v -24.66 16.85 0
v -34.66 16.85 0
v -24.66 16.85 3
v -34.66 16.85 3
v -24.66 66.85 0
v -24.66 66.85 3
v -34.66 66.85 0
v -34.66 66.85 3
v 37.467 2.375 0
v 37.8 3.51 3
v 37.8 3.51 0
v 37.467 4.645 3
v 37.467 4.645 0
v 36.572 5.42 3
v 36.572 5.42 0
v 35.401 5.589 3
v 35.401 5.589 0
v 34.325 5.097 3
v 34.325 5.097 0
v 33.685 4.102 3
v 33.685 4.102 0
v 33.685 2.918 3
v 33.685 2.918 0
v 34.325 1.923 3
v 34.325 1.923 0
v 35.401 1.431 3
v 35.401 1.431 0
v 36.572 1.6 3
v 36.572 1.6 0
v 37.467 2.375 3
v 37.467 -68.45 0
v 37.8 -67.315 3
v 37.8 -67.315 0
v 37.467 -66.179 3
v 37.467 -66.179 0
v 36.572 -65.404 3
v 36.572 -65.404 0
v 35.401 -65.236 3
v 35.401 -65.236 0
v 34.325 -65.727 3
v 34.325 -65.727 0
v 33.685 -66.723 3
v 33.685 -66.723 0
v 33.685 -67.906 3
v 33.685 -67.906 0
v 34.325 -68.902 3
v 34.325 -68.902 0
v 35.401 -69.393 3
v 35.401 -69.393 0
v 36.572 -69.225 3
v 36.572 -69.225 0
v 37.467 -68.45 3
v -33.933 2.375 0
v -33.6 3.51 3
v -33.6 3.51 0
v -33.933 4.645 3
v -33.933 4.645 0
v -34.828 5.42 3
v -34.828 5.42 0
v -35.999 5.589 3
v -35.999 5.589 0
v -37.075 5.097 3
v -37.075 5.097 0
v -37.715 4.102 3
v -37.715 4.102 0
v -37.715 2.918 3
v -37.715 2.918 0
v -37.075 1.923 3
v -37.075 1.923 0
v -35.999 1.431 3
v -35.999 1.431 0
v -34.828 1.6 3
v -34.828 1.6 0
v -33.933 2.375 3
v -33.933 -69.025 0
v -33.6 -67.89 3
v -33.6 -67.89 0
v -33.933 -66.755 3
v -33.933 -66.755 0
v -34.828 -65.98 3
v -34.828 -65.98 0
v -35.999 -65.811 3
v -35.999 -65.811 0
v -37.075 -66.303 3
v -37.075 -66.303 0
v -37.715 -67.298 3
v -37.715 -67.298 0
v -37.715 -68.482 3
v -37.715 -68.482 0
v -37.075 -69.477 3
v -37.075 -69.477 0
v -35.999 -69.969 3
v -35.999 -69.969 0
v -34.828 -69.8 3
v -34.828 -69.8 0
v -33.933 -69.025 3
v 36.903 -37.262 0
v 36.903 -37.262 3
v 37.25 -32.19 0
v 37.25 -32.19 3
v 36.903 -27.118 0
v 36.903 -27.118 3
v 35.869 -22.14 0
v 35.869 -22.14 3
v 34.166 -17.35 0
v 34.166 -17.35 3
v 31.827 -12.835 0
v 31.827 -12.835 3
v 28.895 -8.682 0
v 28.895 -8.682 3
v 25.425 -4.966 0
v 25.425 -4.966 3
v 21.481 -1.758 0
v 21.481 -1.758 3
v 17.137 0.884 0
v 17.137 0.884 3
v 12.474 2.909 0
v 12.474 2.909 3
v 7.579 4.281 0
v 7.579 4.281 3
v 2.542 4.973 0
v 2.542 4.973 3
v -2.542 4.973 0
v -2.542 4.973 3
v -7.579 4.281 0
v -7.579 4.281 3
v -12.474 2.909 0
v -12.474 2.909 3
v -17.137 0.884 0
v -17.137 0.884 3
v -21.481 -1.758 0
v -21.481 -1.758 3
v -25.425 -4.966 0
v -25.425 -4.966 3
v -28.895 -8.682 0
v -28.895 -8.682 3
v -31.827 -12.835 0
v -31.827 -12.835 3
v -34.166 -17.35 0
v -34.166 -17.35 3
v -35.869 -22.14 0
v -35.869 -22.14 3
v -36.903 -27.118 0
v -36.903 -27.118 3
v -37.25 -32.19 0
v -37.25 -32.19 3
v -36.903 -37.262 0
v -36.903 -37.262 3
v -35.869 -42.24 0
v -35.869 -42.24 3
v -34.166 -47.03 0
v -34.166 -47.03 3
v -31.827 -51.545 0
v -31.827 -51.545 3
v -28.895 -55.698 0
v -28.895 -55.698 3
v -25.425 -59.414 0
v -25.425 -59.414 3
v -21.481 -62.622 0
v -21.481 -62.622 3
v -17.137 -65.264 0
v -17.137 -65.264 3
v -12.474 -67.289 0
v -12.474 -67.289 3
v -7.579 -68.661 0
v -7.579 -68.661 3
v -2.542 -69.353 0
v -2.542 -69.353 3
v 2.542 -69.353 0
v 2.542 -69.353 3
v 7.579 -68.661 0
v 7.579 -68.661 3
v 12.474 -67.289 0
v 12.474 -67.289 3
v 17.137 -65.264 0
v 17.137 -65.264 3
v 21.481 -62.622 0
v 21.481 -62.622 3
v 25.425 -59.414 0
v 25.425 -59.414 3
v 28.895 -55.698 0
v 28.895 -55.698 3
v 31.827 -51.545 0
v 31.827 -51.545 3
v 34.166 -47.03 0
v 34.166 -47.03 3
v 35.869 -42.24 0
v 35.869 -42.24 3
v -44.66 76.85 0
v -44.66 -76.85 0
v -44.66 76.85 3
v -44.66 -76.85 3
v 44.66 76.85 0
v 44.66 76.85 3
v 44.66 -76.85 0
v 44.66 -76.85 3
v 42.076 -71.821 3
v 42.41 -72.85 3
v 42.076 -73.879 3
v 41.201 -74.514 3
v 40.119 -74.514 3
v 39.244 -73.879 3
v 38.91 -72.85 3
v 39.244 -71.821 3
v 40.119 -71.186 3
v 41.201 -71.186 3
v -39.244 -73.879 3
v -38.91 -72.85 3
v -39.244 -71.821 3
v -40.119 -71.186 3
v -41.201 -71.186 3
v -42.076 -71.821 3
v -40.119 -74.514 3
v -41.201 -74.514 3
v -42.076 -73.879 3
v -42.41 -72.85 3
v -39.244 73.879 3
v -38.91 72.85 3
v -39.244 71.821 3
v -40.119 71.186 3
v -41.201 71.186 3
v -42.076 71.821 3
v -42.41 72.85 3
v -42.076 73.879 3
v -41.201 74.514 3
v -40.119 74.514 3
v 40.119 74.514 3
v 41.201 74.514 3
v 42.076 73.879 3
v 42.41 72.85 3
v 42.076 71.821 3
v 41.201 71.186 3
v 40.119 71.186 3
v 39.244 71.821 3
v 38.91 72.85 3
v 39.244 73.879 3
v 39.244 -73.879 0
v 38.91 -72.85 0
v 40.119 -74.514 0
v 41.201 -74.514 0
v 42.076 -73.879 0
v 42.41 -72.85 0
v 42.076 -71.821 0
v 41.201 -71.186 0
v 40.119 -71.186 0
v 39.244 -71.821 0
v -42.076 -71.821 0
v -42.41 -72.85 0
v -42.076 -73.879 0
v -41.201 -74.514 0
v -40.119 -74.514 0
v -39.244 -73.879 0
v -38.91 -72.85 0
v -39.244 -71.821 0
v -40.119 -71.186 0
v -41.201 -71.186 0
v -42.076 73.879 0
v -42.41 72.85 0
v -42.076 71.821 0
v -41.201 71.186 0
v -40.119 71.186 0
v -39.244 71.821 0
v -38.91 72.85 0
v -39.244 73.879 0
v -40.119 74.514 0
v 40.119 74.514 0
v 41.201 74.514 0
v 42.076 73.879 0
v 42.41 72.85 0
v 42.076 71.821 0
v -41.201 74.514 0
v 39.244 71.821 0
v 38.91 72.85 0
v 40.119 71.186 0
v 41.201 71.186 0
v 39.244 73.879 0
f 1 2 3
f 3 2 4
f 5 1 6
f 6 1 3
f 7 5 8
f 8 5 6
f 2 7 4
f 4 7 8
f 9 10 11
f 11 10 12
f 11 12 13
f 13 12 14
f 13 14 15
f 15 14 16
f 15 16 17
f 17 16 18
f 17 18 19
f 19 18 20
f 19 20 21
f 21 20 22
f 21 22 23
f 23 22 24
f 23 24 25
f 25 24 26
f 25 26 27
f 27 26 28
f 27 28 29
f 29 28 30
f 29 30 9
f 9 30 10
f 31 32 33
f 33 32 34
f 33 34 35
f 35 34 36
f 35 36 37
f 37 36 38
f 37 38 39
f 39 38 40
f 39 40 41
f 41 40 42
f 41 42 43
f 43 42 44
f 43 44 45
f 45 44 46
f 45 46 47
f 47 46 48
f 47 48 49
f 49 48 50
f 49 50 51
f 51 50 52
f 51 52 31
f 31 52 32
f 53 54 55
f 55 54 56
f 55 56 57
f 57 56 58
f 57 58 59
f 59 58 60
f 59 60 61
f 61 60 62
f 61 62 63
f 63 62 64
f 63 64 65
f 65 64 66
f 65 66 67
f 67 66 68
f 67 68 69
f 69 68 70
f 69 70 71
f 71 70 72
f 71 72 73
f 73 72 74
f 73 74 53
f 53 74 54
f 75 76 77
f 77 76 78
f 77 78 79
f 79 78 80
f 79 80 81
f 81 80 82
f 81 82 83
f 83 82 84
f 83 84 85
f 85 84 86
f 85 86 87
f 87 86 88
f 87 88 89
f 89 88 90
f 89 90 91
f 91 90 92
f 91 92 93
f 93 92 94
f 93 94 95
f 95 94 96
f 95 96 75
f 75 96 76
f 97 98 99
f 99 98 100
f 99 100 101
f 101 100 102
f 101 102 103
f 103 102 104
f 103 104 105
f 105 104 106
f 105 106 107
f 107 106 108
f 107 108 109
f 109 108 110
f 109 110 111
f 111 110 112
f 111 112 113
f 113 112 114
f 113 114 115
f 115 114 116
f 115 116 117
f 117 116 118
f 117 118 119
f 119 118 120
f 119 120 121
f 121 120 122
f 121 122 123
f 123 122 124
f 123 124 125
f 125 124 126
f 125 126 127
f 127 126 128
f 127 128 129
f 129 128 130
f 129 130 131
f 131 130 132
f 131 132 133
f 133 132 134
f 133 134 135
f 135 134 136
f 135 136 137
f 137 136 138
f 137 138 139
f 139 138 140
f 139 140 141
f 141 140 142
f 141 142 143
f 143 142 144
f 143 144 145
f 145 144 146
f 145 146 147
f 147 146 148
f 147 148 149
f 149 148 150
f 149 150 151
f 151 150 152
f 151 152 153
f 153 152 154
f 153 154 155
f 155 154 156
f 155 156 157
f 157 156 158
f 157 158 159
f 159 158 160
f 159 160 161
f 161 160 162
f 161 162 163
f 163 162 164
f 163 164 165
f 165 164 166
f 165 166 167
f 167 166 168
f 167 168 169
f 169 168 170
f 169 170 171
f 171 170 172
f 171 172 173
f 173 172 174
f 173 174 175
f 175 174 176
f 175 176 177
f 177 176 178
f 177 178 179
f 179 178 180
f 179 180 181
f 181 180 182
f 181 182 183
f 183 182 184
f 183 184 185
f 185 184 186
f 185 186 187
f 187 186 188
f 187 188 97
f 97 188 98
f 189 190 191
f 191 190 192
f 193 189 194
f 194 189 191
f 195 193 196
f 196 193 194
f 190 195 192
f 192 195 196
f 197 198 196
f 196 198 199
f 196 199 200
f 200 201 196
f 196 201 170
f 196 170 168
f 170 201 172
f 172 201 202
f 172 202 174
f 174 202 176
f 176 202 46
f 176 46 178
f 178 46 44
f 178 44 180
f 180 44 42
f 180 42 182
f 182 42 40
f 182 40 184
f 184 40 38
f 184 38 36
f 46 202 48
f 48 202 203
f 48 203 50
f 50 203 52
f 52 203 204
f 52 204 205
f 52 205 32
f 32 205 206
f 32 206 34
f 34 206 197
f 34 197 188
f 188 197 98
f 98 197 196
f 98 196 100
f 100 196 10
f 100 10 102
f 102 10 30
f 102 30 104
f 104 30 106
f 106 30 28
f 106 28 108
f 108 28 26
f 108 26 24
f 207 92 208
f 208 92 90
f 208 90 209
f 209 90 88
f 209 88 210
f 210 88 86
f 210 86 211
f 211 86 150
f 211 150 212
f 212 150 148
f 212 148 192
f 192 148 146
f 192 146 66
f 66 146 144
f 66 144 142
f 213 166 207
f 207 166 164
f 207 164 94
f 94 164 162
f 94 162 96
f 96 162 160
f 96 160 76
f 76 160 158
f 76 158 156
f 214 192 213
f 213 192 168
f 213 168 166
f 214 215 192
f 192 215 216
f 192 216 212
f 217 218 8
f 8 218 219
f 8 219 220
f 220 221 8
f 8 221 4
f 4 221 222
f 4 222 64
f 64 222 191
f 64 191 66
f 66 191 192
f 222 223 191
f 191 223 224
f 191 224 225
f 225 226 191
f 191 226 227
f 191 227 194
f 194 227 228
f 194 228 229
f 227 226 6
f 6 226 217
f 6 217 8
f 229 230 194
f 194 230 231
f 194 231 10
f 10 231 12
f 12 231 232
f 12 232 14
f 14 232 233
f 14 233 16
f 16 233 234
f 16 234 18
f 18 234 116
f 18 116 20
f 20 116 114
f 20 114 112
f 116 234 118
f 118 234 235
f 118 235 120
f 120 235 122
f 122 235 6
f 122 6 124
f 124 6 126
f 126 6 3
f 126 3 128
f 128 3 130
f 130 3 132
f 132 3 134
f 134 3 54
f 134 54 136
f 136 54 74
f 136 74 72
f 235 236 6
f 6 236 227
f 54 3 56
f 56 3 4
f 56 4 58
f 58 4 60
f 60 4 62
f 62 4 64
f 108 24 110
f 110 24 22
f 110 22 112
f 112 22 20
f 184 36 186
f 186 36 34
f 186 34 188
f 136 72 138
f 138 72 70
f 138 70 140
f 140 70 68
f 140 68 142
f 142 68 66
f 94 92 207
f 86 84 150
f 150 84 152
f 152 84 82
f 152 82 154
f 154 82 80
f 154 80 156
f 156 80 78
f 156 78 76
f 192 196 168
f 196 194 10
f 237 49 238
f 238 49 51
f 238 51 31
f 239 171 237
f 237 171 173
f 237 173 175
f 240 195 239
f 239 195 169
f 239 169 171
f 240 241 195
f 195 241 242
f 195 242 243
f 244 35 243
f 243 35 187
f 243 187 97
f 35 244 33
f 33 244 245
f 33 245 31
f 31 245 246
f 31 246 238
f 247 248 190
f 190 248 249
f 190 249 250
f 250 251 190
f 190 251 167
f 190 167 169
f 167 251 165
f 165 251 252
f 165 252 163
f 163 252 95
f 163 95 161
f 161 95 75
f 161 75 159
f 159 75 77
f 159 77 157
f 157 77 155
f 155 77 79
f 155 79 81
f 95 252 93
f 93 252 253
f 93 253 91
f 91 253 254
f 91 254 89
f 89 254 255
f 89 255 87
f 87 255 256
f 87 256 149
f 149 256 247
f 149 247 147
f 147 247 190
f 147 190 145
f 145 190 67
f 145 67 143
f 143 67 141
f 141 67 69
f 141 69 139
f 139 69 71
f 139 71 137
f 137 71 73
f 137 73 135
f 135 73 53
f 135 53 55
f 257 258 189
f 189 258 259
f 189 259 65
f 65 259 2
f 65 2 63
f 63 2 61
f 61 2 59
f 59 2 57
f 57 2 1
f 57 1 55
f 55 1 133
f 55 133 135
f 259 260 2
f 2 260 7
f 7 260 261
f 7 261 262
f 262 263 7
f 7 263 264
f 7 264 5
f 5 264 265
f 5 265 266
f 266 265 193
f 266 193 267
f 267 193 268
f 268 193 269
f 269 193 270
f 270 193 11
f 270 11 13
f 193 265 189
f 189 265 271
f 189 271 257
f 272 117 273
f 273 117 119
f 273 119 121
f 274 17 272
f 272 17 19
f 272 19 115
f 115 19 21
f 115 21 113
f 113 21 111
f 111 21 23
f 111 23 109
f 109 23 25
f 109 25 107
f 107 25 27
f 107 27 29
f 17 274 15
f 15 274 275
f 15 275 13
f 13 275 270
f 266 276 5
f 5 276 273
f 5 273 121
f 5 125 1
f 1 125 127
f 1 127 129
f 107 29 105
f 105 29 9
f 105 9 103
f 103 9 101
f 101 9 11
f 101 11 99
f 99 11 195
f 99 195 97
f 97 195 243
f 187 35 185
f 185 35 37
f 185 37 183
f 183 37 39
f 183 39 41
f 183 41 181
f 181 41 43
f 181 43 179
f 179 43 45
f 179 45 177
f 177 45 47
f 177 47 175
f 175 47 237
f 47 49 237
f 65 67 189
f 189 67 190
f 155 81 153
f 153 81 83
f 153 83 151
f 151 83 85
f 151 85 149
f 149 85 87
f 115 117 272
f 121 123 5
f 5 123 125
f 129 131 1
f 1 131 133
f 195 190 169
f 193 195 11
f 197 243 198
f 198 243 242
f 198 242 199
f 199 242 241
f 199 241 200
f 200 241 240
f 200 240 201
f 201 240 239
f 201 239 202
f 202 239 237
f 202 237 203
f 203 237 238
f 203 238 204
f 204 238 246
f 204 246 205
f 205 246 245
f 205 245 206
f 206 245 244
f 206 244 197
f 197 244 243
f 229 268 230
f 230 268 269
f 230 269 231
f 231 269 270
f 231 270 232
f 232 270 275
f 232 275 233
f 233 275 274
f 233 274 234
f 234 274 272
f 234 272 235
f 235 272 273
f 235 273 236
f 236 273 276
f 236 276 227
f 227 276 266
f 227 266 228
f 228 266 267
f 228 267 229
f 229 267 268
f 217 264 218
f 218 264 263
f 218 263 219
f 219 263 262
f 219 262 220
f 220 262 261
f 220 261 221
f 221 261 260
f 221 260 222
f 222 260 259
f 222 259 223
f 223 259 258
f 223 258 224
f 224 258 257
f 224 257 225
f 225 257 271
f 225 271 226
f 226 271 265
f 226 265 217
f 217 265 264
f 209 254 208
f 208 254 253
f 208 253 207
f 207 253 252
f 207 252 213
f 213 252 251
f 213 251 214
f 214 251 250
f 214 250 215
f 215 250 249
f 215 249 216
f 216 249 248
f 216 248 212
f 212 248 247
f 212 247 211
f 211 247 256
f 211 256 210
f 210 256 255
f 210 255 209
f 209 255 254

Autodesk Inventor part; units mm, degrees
ref_plane "YZ Plane" through (0, 0, 0) normal (1, 0, 0) x (0, 1, 0)
ref_plane "XZ Plane" through (0, 0, 0) normal (0, 1, 0) x (-1, 0, 0)
ref_plane "XY Plane" through (0, 0, 0) normal (0, 0, 1) x (1, 0, 0)
sketch "Boceto1" plane through (0, 0, 0) normal (0, 0, 1) x (1, 0, 0)
  line L0 (-44.66, 76.85) -> (-44.66, -76.85) projected
  line L1 (-44.66, -76.85) -> (44.66, -76.85) projected
  line L2 (44.66, -76.85) -> (44.66, 76.85) projected
  line L3 (44.66, 76.85) -> (-44.66, 76.85) projected
  line L4 (41.66, -73.85) -> (-41.66, -73.85) projected
  line L5 (-41.66, -73.85) -> (-41.66, 73.85) projected
  line L6 (-41.66, 73.85) -> (41.66, 73.85) projected
  line L7 (41.66, 73.85) -> (41.66, -73.85) projected
  point P0 (0, 0)
extrude "Extrusión1" add sketch "Boceto1" along normal blind 3 contours L3 L2 L1 L0 | L4 L5 L6 L7
sketch "Boceto2" plane through (0, 0, 3) normal (0, 0, 1) x (1, 0, 0)
  line L0 (15.66, 13.175) -> (25.66, 13.175) projected
  line L1 (25.66, 13.175) -> (25.66, 9.175) projected
  line L2 (25.66, 9.175) -> (15.66, 9.175) projected
  line L3 (15.66, 9.175) -> (15.66, 13.175) projected
  line L4 (-21.66, 30.85) -> (-31.66, 30.85) projected
  line L5 (-31.66, 30.85) -> (-31.66, 34.85) projected
  line L6 (-31.66, 34.85) -> (-21.66, 34.85) projected
  line L7 (-21.66, 34.85) -> (-21.66, 30.85) projected
  line L8 (25.66, 30.85) -> (15.66, 30.85) projected
  line L9 (15.66, 30.85) -> (15.66, 34.85) projected
  line L10 (15.66, 34.85) -> (25.66, 34.85) projected
  line L11 (25.66, 34.85) -> (25.66, 30.85) projected
  line L12 (-31.66, 13.175) -> (-21.66, 13.175) projected
  line L13 (-21.66, 13.175) -> (-21.66, 9.175) projected
  line L14 (-21.66, 9.175) -> (-31.66, 9.175) projected
  line L15 (-31.66, 9.175) -> (-31.66, 13.175) projected
  circle A0 centre (32.34, 65.85) radius 4.5 projected
  circle A1 centre (-33.66, 39.85) radius 4.5 projected
  line L16 (38.16, -57.55) -> (38.16, -73.85) projected
  line L17 (38.16, -73.85) -> (41.66, -73.85) projected
  line L18 (41.66, -73.85) -> (41.66, 73.85) projected
  line L19 (41.66, 73.85) -> (-41.66, 73.85) projected
  line L20 (-41.66, 73.85) -> (-41.66, -73.85) projected
  line L21 (-41.66, -73.85) -> (23.76, -73.85) projected
  circle A2 centre (32.34, 39.85) radius 4.5 projected
  circle A3 centre (-33.66, 65.85) radius 4.5 projected
  line L22 (-44.66, 76.85) -> (-44.66, -76.85) projected
  line L23 (-44.66, 76.85) -> (-44.66, -76.85) projected
  line L24 (-44.66, -76.85) -> (44.66, -76.85) projected
  line L25 (44.66, -76.85) -> (44.66, 76.85) projected
  line L26 (44.66, 76.85) -> (-44.66, 76.85) projected
  line L27 (-44.66, 76.85) -> (-44.66, -76.85) projected
  line L28 (-41.66, -73.85) -> (41.66, -73.85)
  line L29 (41.66, -73.85) -> (41.66, 73.85)
  line L30 (41.66, 73.85) -> (-41.66, 73.85)
  line L31 (-41.66, 73.85) -> (-41.66, -73.85)
  line L32 (-41.66, -73.85) -> (41.66, -73.85)
  line L33 (41.66, -73.85) -> (41.66, 9.47)
  line L34 (41.66, 9.47) -> (-41.66, 9.47)
  line L35 (-41.66, 9.47) -> (-41.66, -73.85)
  line L36 (40, 7.81) -> (-40, 7.81)
  line L37 (-40, 7.81) -> (-40, -72.19)
  line L38 (-40, -72.19) -> (40, -72.19)
  line L39 (40, -72.19) -> (40, 7.81)
  line L40 (40, 7.81) -> (-40, -72.19) construction
  line L41 (-40, 7.81) -> (40, -72.19) construction
  line L42 (-37.8, -69.99) -> (-37.8, 5.61)
  line L43 (-37.8, 5.61) -> (37.8, 5.61)
  line L44 (37.8, 5.61) -> (37.8, -69.99)
  line L45 (37.8, -69.99) -> (-37.8, -69.99)
  circle A4 centre (-35.7, -67.89) radius 2.1
  circle A5 centre (0, -32.19) radius 37.25
  circle A6 centre (-35.7, 3.51) radius 2.1
  circle A7 centre (35.7, 3.51) radius 2.1
  circle A8 centre (35.7, -67.3145) radius 2.1
  point P0 (0, 0)
  dimension "d9" = 83.32
  dimension "d10" = 83.32
  dimension "d11" = 83.32
  dimension "d12" = 80
  dimension "d13" = 80
  dimension "d14" = 2.2
  dimension "d15" = 4.2
  dimension "d16" = 74.5
  dimension "d17" = 4.2
  dimension "d18" = 4.2
  dimension "d19" = 4.2
extrude "Extrusión3" cut sketch "Boceto2" against normal blind 3 contours A8 | A4 | A6 | A7 | A5
sketch "Boceto4" plane through (0, 0, 3) normal (0, 0, 1) x (1, 0, 0)
  circle A0 centre (35.7, 3.51) radius 2.1 projected
  circle A1 centre (35.7, -67.3145) radius 2.1 projected
  circle A2 centre (-35.7, 3.51) radius 2.1 projected
  circle A3 centre (-35.7, -67.89) radius 2.1 projected
  circle A4 centre (0, -32.19) radius 37.25 projected
  line L0 (-44.66, -76.85) -> (44.66, -76.85) projected
  line L1 (44.66, -76.85) -> (44.66, 76.85) projected
  line L2 (44.66, 76.85) -> (-44.66, 76.85) projected
  line L3 (-44.66, 76.85) -> (-44.66, -76.85) projected
  line L4 (-34.66, -66.85) -> (34.66, -66.85)
  line L5 (34.66, -66.85) -> (34.66, 66.85)
  line L6 (34.66, 66.85) -> (-34.66, 66.85)
  line L7 (-34.66, 66.85) -> (-34.66, -66.85)
  line L8 (-34.66, 66.85) -> (-24.66, 66.85)
  line L9 (-24.66, 66.85) -> (-24.66, 16.85)
  line L10 (-24.66, 16.85) -> (-34.66, 16.85)
  line L11 (-34.66, 16.85) -> (-34.66, 66.85)
  point P0 (0, 0)
  point P1 (-34.66, 16.85)
  dimension "d22" = 10
  dimension "d23" = 10
  dimension "d24" = 50
extrude "Extrusión4" cut sketch "Boceto4" against normal blind 10 contours L9 L10 L7 L6
sketch "Boceto5" plane through (0, 0, 0) normal (0, 0, -1) x (-1, 0, 0)
  circle A0 centre (-40.66, -72.85) radius 1.75 projected
  circle A1 centre (40.66, -72.85) radius 1.75 projected
  circle A2 centre (40.66, 72.85) radius 1.75 projected
  circle A3 centre (-40.66, 72.85) radius 1.75 projected
  point P0 (0, 0)
hole "Agujero1" at (40.66, 72.85, 0) at (-40.66, 72.85, 0) at (-40.66, -72.85, 0) at (40.66, -72.85, 0) direction (0, 0, 1) diameter 3.5 depth 7
properties part number "TapaControladora"
